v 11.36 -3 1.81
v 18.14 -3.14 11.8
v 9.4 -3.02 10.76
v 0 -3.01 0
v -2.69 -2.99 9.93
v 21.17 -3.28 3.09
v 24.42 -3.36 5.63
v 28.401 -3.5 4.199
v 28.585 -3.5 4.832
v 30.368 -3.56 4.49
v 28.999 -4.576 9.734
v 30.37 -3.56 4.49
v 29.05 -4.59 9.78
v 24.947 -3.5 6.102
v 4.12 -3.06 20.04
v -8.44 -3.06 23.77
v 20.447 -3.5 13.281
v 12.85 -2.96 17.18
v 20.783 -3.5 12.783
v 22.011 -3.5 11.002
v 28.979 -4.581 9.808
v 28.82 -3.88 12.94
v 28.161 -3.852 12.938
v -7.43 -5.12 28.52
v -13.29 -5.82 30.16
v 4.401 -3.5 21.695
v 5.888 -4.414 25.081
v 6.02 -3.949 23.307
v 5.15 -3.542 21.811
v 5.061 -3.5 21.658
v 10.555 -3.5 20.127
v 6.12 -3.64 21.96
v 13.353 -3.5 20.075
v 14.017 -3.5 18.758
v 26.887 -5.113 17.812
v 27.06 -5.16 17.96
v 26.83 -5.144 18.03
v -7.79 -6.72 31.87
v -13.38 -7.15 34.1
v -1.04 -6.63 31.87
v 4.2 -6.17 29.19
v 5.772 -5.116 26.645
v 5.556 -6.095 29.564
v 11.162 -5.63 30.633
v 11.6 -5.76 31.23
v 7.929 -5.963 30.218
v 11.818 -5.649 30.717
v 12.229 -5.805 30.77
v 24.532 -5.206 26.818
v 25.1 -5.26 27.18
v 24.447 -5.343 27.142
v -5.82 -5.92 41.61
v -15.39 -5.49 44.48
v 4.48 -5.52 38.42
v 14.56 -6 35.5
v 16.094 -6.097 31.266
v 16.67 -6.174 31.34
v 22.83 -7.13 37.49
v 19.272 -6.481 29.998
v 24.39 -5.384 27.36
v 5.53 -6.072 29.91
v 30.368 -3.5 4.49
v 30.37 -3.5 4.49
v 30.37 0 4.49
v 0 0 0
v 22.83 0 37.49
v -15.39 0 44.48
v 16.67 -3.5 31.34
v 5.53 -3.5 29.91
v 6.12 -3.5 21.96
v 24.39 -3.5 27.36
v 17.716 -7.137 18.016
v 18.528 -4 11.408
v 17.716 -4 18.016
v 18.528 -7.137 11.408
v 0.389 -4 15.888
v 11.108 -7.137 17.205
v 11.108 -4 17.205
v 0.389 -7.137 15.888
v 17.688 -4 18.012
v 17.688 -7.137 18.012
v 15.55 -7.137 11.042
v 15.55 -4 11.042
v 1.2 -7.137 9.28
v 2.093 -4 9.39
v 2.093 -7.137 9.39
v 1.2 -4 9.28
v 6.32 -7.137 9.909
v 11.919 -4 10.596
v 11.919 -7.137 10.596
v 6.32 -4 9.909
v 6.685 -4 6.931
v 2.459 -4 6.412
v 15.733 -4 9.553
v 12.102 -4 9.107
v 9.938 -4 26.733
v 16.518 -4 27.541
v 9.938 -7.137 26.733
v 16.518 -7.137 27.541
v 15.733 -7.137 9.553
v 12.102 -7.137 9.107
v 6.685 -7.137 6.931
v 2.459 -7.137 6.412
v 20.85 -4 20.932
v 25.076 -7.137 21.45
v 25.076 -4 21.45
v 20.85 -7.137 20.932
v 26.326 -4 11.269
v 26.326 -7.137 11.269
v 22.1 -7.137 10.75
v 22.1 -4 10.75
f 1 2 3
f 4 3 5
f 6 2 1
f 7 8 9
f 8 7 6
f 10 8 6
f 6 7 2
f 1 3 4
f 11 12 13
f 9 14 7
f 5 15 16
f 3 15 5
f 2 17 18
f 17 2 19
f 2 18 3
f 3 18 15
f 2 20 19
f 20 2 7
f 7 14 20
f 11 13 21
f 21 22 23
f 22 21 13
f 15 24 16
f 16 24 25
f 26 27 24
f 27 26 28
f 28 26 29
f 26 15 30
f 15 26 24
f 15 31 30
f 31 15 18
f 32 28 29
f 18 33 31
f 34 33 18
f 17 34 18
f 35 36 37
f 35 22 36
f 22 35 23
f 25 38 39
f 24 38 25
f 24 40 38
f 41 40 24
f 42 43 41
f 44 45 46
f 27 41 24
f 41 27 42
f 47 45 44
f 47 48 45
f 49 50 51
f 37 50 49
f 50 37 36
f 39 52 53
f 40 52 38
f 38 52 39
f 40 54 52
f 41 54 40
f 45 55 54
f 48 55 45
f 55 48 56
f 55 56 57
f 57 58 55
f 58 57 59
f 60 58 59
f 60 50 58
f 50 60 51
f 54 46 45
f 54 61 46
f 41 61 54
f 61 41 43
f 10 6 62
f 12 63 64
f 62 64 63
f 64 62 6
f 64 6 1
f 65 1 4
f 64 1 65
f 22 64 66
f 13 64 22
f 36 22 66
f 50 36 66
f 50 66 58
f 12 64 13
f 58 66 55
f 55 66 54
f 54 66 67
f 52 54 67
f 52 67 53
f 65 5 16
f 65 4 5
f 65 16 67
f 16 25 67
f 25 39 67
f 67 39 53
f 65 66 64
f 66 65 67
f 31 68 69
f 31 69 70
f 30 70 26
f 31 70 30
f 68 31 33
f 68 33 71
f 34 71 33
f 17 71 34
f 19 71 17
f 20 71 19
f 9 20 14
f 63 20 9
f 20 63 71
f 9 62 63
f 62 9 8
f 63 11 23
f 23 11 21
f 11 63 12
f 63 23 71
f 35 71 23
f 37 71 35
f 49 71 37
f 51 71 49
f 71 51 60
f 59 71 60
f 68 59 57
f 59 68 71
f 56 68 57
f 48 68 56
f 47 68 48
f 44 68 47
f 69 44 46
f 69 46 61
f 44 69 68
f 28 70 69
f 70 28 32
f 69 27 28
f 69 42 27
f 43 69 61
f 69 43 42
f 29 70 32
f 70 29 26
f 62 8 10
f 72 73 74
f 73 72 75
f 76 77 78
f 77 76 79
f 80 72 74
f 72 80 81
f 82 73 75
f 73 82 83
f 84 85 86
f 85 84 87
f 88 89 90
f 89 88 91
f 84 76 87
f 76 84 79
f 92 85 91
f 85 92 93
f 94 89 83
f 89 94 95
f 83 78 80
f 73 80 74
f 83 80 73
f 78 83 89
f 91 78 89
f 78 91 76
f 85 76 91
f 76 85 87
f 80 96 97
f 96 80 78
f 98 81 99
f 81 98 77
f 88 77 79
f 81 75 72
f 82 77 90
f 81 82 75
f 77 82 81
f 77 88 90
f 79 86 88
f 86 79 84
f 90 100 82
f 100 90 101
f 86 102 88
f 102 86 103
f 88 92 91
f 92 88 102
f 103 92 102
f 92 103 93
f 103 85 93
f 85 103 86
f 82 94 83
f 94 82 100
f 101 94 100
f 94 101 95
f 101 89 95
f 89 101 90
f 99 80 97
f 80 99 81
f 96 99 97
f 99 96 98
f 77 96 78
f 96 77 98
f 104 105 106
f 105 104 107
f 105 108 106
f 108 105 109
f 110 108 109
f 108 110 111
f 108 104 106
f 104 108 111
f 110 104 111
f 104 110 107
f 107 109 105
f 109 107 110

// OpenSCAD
module karta() {
    points = [
      // Bottom
      [0,     -3.01, 0], // 0
      [11.36, -3.00, 1.81],
      [21.17, -3.28, 3.09],
      [30.37, -3.56, 4.49],
      // Right
      [29.05, -4.59, 9.78], // 4
      [28.82, -3.88, 12.94],  
      [27.06, -5.16, 17.96],  
      [25.10, -5.26, 27.18],
      [22.83, -7.13, 37.49],
      // Top
      [14.56, -6.00, 35.50],  // 9
      [4.48,  -5.52, 38.42],   
      [-5.82, -5.92, 41.61],    
      [-15.39, -5.49, 44.48],
      // Left  
      [-13.38, -7.15, 34.10], // 13
      [-13.29, -5.82, 30.16],
      [-8.44, -3.06, 23.77],
      [-2.69, -2.99, 9.93],
      // Middle
      [9.40, -3.02, 10.76], // 17
      [18.14, -3.14, 11.80],
      [24.42, -3.36, 5.63],
      [21.15, -3.55, 12.92], // 20
      [15.92, -4.38, 21.33],
      [12.85, -2.96, 17.18],
      [4.12,  -3.06,  20.04], // 23
      [-7.43, -5.12, 28.52],
      [-7.79, -6.72, 31.87],
      [-1.04, -6.63, 31.87],
      [4.20,  -6.17, 29.19], // 27
      [6.90,  -4.36, 24.82],
      [11.60, -5.76, 31.23],
      [14.22, -4.43, 25.06],  
      [17.73, -6.20, 26.75],  // 31  
      
      // Below
      [0, 0, 0], // 32
      [30.37, 0, 4.49],
      [22.83, 0, 37.49],
      [-15.39, 0, 44.48],

    ];

    faces = [
      [16,17,18,19,4,3,2,1,0],
      [15,23,22,20,5,4,19,18,17,16],
      [14,24,28,30,21,6,5,20,22,23,15],
      [13,25,26,27,29,31,7,6,21,30,28,24,14],
      [12,11,10,9,8,7,31,29,27,26,25,13],
      
      // Ground front
      [0,1,2,3,33,32],
      
      // Ground right
      [3,4,5,6,7,8,34,33],
      
      // Ground back
      [8,9,10,11,12,35,34],

      // Ground left
      [12,13,14,15,16,0,32,35],

      // Bottom
      [32,33,34,35],
    ];
    polyhedron(points, faces,10);
}


module hus() {
    cube([17.458,3.137,6.658], false);
    translate([0.9,0,-3])
        cube([4.258,3.137,3], false);    
    translate([10.8,0,-1.5])
        cube([3.658,3.137,1.5], false);
    translate([10.8,0,6.658])
        cube([6.629,3.137,9.6], false);
}

module garage() {
    cube([4.258,3.137,10.258], false);
}

module cut() {
    points = [
      [0,   0], // 0
      [30.37, 4.49],  
      [24.39, 27.36],
      [16.67, 31.34],
      [5.53, 29.91],
      [6.12, 21.96],
      [-6.54, 20.01]
    ];
    translate([0, -3.5,0])
        rotate([90,0,0])
            linear_extrude(height=10,center=false, convexity=10)
                polygon(points);
}

module schaktning() {
}

difference() {
  karta();
  cut();  
  
}


translate([0,-3.137,0])
translate([1.20,-4,9.28])
rotate([0,-7,0])
hus();

translate([0,-3.137,0])
translate([22.10,-4,10.75])
rotate([0,-7,0])
garage();
